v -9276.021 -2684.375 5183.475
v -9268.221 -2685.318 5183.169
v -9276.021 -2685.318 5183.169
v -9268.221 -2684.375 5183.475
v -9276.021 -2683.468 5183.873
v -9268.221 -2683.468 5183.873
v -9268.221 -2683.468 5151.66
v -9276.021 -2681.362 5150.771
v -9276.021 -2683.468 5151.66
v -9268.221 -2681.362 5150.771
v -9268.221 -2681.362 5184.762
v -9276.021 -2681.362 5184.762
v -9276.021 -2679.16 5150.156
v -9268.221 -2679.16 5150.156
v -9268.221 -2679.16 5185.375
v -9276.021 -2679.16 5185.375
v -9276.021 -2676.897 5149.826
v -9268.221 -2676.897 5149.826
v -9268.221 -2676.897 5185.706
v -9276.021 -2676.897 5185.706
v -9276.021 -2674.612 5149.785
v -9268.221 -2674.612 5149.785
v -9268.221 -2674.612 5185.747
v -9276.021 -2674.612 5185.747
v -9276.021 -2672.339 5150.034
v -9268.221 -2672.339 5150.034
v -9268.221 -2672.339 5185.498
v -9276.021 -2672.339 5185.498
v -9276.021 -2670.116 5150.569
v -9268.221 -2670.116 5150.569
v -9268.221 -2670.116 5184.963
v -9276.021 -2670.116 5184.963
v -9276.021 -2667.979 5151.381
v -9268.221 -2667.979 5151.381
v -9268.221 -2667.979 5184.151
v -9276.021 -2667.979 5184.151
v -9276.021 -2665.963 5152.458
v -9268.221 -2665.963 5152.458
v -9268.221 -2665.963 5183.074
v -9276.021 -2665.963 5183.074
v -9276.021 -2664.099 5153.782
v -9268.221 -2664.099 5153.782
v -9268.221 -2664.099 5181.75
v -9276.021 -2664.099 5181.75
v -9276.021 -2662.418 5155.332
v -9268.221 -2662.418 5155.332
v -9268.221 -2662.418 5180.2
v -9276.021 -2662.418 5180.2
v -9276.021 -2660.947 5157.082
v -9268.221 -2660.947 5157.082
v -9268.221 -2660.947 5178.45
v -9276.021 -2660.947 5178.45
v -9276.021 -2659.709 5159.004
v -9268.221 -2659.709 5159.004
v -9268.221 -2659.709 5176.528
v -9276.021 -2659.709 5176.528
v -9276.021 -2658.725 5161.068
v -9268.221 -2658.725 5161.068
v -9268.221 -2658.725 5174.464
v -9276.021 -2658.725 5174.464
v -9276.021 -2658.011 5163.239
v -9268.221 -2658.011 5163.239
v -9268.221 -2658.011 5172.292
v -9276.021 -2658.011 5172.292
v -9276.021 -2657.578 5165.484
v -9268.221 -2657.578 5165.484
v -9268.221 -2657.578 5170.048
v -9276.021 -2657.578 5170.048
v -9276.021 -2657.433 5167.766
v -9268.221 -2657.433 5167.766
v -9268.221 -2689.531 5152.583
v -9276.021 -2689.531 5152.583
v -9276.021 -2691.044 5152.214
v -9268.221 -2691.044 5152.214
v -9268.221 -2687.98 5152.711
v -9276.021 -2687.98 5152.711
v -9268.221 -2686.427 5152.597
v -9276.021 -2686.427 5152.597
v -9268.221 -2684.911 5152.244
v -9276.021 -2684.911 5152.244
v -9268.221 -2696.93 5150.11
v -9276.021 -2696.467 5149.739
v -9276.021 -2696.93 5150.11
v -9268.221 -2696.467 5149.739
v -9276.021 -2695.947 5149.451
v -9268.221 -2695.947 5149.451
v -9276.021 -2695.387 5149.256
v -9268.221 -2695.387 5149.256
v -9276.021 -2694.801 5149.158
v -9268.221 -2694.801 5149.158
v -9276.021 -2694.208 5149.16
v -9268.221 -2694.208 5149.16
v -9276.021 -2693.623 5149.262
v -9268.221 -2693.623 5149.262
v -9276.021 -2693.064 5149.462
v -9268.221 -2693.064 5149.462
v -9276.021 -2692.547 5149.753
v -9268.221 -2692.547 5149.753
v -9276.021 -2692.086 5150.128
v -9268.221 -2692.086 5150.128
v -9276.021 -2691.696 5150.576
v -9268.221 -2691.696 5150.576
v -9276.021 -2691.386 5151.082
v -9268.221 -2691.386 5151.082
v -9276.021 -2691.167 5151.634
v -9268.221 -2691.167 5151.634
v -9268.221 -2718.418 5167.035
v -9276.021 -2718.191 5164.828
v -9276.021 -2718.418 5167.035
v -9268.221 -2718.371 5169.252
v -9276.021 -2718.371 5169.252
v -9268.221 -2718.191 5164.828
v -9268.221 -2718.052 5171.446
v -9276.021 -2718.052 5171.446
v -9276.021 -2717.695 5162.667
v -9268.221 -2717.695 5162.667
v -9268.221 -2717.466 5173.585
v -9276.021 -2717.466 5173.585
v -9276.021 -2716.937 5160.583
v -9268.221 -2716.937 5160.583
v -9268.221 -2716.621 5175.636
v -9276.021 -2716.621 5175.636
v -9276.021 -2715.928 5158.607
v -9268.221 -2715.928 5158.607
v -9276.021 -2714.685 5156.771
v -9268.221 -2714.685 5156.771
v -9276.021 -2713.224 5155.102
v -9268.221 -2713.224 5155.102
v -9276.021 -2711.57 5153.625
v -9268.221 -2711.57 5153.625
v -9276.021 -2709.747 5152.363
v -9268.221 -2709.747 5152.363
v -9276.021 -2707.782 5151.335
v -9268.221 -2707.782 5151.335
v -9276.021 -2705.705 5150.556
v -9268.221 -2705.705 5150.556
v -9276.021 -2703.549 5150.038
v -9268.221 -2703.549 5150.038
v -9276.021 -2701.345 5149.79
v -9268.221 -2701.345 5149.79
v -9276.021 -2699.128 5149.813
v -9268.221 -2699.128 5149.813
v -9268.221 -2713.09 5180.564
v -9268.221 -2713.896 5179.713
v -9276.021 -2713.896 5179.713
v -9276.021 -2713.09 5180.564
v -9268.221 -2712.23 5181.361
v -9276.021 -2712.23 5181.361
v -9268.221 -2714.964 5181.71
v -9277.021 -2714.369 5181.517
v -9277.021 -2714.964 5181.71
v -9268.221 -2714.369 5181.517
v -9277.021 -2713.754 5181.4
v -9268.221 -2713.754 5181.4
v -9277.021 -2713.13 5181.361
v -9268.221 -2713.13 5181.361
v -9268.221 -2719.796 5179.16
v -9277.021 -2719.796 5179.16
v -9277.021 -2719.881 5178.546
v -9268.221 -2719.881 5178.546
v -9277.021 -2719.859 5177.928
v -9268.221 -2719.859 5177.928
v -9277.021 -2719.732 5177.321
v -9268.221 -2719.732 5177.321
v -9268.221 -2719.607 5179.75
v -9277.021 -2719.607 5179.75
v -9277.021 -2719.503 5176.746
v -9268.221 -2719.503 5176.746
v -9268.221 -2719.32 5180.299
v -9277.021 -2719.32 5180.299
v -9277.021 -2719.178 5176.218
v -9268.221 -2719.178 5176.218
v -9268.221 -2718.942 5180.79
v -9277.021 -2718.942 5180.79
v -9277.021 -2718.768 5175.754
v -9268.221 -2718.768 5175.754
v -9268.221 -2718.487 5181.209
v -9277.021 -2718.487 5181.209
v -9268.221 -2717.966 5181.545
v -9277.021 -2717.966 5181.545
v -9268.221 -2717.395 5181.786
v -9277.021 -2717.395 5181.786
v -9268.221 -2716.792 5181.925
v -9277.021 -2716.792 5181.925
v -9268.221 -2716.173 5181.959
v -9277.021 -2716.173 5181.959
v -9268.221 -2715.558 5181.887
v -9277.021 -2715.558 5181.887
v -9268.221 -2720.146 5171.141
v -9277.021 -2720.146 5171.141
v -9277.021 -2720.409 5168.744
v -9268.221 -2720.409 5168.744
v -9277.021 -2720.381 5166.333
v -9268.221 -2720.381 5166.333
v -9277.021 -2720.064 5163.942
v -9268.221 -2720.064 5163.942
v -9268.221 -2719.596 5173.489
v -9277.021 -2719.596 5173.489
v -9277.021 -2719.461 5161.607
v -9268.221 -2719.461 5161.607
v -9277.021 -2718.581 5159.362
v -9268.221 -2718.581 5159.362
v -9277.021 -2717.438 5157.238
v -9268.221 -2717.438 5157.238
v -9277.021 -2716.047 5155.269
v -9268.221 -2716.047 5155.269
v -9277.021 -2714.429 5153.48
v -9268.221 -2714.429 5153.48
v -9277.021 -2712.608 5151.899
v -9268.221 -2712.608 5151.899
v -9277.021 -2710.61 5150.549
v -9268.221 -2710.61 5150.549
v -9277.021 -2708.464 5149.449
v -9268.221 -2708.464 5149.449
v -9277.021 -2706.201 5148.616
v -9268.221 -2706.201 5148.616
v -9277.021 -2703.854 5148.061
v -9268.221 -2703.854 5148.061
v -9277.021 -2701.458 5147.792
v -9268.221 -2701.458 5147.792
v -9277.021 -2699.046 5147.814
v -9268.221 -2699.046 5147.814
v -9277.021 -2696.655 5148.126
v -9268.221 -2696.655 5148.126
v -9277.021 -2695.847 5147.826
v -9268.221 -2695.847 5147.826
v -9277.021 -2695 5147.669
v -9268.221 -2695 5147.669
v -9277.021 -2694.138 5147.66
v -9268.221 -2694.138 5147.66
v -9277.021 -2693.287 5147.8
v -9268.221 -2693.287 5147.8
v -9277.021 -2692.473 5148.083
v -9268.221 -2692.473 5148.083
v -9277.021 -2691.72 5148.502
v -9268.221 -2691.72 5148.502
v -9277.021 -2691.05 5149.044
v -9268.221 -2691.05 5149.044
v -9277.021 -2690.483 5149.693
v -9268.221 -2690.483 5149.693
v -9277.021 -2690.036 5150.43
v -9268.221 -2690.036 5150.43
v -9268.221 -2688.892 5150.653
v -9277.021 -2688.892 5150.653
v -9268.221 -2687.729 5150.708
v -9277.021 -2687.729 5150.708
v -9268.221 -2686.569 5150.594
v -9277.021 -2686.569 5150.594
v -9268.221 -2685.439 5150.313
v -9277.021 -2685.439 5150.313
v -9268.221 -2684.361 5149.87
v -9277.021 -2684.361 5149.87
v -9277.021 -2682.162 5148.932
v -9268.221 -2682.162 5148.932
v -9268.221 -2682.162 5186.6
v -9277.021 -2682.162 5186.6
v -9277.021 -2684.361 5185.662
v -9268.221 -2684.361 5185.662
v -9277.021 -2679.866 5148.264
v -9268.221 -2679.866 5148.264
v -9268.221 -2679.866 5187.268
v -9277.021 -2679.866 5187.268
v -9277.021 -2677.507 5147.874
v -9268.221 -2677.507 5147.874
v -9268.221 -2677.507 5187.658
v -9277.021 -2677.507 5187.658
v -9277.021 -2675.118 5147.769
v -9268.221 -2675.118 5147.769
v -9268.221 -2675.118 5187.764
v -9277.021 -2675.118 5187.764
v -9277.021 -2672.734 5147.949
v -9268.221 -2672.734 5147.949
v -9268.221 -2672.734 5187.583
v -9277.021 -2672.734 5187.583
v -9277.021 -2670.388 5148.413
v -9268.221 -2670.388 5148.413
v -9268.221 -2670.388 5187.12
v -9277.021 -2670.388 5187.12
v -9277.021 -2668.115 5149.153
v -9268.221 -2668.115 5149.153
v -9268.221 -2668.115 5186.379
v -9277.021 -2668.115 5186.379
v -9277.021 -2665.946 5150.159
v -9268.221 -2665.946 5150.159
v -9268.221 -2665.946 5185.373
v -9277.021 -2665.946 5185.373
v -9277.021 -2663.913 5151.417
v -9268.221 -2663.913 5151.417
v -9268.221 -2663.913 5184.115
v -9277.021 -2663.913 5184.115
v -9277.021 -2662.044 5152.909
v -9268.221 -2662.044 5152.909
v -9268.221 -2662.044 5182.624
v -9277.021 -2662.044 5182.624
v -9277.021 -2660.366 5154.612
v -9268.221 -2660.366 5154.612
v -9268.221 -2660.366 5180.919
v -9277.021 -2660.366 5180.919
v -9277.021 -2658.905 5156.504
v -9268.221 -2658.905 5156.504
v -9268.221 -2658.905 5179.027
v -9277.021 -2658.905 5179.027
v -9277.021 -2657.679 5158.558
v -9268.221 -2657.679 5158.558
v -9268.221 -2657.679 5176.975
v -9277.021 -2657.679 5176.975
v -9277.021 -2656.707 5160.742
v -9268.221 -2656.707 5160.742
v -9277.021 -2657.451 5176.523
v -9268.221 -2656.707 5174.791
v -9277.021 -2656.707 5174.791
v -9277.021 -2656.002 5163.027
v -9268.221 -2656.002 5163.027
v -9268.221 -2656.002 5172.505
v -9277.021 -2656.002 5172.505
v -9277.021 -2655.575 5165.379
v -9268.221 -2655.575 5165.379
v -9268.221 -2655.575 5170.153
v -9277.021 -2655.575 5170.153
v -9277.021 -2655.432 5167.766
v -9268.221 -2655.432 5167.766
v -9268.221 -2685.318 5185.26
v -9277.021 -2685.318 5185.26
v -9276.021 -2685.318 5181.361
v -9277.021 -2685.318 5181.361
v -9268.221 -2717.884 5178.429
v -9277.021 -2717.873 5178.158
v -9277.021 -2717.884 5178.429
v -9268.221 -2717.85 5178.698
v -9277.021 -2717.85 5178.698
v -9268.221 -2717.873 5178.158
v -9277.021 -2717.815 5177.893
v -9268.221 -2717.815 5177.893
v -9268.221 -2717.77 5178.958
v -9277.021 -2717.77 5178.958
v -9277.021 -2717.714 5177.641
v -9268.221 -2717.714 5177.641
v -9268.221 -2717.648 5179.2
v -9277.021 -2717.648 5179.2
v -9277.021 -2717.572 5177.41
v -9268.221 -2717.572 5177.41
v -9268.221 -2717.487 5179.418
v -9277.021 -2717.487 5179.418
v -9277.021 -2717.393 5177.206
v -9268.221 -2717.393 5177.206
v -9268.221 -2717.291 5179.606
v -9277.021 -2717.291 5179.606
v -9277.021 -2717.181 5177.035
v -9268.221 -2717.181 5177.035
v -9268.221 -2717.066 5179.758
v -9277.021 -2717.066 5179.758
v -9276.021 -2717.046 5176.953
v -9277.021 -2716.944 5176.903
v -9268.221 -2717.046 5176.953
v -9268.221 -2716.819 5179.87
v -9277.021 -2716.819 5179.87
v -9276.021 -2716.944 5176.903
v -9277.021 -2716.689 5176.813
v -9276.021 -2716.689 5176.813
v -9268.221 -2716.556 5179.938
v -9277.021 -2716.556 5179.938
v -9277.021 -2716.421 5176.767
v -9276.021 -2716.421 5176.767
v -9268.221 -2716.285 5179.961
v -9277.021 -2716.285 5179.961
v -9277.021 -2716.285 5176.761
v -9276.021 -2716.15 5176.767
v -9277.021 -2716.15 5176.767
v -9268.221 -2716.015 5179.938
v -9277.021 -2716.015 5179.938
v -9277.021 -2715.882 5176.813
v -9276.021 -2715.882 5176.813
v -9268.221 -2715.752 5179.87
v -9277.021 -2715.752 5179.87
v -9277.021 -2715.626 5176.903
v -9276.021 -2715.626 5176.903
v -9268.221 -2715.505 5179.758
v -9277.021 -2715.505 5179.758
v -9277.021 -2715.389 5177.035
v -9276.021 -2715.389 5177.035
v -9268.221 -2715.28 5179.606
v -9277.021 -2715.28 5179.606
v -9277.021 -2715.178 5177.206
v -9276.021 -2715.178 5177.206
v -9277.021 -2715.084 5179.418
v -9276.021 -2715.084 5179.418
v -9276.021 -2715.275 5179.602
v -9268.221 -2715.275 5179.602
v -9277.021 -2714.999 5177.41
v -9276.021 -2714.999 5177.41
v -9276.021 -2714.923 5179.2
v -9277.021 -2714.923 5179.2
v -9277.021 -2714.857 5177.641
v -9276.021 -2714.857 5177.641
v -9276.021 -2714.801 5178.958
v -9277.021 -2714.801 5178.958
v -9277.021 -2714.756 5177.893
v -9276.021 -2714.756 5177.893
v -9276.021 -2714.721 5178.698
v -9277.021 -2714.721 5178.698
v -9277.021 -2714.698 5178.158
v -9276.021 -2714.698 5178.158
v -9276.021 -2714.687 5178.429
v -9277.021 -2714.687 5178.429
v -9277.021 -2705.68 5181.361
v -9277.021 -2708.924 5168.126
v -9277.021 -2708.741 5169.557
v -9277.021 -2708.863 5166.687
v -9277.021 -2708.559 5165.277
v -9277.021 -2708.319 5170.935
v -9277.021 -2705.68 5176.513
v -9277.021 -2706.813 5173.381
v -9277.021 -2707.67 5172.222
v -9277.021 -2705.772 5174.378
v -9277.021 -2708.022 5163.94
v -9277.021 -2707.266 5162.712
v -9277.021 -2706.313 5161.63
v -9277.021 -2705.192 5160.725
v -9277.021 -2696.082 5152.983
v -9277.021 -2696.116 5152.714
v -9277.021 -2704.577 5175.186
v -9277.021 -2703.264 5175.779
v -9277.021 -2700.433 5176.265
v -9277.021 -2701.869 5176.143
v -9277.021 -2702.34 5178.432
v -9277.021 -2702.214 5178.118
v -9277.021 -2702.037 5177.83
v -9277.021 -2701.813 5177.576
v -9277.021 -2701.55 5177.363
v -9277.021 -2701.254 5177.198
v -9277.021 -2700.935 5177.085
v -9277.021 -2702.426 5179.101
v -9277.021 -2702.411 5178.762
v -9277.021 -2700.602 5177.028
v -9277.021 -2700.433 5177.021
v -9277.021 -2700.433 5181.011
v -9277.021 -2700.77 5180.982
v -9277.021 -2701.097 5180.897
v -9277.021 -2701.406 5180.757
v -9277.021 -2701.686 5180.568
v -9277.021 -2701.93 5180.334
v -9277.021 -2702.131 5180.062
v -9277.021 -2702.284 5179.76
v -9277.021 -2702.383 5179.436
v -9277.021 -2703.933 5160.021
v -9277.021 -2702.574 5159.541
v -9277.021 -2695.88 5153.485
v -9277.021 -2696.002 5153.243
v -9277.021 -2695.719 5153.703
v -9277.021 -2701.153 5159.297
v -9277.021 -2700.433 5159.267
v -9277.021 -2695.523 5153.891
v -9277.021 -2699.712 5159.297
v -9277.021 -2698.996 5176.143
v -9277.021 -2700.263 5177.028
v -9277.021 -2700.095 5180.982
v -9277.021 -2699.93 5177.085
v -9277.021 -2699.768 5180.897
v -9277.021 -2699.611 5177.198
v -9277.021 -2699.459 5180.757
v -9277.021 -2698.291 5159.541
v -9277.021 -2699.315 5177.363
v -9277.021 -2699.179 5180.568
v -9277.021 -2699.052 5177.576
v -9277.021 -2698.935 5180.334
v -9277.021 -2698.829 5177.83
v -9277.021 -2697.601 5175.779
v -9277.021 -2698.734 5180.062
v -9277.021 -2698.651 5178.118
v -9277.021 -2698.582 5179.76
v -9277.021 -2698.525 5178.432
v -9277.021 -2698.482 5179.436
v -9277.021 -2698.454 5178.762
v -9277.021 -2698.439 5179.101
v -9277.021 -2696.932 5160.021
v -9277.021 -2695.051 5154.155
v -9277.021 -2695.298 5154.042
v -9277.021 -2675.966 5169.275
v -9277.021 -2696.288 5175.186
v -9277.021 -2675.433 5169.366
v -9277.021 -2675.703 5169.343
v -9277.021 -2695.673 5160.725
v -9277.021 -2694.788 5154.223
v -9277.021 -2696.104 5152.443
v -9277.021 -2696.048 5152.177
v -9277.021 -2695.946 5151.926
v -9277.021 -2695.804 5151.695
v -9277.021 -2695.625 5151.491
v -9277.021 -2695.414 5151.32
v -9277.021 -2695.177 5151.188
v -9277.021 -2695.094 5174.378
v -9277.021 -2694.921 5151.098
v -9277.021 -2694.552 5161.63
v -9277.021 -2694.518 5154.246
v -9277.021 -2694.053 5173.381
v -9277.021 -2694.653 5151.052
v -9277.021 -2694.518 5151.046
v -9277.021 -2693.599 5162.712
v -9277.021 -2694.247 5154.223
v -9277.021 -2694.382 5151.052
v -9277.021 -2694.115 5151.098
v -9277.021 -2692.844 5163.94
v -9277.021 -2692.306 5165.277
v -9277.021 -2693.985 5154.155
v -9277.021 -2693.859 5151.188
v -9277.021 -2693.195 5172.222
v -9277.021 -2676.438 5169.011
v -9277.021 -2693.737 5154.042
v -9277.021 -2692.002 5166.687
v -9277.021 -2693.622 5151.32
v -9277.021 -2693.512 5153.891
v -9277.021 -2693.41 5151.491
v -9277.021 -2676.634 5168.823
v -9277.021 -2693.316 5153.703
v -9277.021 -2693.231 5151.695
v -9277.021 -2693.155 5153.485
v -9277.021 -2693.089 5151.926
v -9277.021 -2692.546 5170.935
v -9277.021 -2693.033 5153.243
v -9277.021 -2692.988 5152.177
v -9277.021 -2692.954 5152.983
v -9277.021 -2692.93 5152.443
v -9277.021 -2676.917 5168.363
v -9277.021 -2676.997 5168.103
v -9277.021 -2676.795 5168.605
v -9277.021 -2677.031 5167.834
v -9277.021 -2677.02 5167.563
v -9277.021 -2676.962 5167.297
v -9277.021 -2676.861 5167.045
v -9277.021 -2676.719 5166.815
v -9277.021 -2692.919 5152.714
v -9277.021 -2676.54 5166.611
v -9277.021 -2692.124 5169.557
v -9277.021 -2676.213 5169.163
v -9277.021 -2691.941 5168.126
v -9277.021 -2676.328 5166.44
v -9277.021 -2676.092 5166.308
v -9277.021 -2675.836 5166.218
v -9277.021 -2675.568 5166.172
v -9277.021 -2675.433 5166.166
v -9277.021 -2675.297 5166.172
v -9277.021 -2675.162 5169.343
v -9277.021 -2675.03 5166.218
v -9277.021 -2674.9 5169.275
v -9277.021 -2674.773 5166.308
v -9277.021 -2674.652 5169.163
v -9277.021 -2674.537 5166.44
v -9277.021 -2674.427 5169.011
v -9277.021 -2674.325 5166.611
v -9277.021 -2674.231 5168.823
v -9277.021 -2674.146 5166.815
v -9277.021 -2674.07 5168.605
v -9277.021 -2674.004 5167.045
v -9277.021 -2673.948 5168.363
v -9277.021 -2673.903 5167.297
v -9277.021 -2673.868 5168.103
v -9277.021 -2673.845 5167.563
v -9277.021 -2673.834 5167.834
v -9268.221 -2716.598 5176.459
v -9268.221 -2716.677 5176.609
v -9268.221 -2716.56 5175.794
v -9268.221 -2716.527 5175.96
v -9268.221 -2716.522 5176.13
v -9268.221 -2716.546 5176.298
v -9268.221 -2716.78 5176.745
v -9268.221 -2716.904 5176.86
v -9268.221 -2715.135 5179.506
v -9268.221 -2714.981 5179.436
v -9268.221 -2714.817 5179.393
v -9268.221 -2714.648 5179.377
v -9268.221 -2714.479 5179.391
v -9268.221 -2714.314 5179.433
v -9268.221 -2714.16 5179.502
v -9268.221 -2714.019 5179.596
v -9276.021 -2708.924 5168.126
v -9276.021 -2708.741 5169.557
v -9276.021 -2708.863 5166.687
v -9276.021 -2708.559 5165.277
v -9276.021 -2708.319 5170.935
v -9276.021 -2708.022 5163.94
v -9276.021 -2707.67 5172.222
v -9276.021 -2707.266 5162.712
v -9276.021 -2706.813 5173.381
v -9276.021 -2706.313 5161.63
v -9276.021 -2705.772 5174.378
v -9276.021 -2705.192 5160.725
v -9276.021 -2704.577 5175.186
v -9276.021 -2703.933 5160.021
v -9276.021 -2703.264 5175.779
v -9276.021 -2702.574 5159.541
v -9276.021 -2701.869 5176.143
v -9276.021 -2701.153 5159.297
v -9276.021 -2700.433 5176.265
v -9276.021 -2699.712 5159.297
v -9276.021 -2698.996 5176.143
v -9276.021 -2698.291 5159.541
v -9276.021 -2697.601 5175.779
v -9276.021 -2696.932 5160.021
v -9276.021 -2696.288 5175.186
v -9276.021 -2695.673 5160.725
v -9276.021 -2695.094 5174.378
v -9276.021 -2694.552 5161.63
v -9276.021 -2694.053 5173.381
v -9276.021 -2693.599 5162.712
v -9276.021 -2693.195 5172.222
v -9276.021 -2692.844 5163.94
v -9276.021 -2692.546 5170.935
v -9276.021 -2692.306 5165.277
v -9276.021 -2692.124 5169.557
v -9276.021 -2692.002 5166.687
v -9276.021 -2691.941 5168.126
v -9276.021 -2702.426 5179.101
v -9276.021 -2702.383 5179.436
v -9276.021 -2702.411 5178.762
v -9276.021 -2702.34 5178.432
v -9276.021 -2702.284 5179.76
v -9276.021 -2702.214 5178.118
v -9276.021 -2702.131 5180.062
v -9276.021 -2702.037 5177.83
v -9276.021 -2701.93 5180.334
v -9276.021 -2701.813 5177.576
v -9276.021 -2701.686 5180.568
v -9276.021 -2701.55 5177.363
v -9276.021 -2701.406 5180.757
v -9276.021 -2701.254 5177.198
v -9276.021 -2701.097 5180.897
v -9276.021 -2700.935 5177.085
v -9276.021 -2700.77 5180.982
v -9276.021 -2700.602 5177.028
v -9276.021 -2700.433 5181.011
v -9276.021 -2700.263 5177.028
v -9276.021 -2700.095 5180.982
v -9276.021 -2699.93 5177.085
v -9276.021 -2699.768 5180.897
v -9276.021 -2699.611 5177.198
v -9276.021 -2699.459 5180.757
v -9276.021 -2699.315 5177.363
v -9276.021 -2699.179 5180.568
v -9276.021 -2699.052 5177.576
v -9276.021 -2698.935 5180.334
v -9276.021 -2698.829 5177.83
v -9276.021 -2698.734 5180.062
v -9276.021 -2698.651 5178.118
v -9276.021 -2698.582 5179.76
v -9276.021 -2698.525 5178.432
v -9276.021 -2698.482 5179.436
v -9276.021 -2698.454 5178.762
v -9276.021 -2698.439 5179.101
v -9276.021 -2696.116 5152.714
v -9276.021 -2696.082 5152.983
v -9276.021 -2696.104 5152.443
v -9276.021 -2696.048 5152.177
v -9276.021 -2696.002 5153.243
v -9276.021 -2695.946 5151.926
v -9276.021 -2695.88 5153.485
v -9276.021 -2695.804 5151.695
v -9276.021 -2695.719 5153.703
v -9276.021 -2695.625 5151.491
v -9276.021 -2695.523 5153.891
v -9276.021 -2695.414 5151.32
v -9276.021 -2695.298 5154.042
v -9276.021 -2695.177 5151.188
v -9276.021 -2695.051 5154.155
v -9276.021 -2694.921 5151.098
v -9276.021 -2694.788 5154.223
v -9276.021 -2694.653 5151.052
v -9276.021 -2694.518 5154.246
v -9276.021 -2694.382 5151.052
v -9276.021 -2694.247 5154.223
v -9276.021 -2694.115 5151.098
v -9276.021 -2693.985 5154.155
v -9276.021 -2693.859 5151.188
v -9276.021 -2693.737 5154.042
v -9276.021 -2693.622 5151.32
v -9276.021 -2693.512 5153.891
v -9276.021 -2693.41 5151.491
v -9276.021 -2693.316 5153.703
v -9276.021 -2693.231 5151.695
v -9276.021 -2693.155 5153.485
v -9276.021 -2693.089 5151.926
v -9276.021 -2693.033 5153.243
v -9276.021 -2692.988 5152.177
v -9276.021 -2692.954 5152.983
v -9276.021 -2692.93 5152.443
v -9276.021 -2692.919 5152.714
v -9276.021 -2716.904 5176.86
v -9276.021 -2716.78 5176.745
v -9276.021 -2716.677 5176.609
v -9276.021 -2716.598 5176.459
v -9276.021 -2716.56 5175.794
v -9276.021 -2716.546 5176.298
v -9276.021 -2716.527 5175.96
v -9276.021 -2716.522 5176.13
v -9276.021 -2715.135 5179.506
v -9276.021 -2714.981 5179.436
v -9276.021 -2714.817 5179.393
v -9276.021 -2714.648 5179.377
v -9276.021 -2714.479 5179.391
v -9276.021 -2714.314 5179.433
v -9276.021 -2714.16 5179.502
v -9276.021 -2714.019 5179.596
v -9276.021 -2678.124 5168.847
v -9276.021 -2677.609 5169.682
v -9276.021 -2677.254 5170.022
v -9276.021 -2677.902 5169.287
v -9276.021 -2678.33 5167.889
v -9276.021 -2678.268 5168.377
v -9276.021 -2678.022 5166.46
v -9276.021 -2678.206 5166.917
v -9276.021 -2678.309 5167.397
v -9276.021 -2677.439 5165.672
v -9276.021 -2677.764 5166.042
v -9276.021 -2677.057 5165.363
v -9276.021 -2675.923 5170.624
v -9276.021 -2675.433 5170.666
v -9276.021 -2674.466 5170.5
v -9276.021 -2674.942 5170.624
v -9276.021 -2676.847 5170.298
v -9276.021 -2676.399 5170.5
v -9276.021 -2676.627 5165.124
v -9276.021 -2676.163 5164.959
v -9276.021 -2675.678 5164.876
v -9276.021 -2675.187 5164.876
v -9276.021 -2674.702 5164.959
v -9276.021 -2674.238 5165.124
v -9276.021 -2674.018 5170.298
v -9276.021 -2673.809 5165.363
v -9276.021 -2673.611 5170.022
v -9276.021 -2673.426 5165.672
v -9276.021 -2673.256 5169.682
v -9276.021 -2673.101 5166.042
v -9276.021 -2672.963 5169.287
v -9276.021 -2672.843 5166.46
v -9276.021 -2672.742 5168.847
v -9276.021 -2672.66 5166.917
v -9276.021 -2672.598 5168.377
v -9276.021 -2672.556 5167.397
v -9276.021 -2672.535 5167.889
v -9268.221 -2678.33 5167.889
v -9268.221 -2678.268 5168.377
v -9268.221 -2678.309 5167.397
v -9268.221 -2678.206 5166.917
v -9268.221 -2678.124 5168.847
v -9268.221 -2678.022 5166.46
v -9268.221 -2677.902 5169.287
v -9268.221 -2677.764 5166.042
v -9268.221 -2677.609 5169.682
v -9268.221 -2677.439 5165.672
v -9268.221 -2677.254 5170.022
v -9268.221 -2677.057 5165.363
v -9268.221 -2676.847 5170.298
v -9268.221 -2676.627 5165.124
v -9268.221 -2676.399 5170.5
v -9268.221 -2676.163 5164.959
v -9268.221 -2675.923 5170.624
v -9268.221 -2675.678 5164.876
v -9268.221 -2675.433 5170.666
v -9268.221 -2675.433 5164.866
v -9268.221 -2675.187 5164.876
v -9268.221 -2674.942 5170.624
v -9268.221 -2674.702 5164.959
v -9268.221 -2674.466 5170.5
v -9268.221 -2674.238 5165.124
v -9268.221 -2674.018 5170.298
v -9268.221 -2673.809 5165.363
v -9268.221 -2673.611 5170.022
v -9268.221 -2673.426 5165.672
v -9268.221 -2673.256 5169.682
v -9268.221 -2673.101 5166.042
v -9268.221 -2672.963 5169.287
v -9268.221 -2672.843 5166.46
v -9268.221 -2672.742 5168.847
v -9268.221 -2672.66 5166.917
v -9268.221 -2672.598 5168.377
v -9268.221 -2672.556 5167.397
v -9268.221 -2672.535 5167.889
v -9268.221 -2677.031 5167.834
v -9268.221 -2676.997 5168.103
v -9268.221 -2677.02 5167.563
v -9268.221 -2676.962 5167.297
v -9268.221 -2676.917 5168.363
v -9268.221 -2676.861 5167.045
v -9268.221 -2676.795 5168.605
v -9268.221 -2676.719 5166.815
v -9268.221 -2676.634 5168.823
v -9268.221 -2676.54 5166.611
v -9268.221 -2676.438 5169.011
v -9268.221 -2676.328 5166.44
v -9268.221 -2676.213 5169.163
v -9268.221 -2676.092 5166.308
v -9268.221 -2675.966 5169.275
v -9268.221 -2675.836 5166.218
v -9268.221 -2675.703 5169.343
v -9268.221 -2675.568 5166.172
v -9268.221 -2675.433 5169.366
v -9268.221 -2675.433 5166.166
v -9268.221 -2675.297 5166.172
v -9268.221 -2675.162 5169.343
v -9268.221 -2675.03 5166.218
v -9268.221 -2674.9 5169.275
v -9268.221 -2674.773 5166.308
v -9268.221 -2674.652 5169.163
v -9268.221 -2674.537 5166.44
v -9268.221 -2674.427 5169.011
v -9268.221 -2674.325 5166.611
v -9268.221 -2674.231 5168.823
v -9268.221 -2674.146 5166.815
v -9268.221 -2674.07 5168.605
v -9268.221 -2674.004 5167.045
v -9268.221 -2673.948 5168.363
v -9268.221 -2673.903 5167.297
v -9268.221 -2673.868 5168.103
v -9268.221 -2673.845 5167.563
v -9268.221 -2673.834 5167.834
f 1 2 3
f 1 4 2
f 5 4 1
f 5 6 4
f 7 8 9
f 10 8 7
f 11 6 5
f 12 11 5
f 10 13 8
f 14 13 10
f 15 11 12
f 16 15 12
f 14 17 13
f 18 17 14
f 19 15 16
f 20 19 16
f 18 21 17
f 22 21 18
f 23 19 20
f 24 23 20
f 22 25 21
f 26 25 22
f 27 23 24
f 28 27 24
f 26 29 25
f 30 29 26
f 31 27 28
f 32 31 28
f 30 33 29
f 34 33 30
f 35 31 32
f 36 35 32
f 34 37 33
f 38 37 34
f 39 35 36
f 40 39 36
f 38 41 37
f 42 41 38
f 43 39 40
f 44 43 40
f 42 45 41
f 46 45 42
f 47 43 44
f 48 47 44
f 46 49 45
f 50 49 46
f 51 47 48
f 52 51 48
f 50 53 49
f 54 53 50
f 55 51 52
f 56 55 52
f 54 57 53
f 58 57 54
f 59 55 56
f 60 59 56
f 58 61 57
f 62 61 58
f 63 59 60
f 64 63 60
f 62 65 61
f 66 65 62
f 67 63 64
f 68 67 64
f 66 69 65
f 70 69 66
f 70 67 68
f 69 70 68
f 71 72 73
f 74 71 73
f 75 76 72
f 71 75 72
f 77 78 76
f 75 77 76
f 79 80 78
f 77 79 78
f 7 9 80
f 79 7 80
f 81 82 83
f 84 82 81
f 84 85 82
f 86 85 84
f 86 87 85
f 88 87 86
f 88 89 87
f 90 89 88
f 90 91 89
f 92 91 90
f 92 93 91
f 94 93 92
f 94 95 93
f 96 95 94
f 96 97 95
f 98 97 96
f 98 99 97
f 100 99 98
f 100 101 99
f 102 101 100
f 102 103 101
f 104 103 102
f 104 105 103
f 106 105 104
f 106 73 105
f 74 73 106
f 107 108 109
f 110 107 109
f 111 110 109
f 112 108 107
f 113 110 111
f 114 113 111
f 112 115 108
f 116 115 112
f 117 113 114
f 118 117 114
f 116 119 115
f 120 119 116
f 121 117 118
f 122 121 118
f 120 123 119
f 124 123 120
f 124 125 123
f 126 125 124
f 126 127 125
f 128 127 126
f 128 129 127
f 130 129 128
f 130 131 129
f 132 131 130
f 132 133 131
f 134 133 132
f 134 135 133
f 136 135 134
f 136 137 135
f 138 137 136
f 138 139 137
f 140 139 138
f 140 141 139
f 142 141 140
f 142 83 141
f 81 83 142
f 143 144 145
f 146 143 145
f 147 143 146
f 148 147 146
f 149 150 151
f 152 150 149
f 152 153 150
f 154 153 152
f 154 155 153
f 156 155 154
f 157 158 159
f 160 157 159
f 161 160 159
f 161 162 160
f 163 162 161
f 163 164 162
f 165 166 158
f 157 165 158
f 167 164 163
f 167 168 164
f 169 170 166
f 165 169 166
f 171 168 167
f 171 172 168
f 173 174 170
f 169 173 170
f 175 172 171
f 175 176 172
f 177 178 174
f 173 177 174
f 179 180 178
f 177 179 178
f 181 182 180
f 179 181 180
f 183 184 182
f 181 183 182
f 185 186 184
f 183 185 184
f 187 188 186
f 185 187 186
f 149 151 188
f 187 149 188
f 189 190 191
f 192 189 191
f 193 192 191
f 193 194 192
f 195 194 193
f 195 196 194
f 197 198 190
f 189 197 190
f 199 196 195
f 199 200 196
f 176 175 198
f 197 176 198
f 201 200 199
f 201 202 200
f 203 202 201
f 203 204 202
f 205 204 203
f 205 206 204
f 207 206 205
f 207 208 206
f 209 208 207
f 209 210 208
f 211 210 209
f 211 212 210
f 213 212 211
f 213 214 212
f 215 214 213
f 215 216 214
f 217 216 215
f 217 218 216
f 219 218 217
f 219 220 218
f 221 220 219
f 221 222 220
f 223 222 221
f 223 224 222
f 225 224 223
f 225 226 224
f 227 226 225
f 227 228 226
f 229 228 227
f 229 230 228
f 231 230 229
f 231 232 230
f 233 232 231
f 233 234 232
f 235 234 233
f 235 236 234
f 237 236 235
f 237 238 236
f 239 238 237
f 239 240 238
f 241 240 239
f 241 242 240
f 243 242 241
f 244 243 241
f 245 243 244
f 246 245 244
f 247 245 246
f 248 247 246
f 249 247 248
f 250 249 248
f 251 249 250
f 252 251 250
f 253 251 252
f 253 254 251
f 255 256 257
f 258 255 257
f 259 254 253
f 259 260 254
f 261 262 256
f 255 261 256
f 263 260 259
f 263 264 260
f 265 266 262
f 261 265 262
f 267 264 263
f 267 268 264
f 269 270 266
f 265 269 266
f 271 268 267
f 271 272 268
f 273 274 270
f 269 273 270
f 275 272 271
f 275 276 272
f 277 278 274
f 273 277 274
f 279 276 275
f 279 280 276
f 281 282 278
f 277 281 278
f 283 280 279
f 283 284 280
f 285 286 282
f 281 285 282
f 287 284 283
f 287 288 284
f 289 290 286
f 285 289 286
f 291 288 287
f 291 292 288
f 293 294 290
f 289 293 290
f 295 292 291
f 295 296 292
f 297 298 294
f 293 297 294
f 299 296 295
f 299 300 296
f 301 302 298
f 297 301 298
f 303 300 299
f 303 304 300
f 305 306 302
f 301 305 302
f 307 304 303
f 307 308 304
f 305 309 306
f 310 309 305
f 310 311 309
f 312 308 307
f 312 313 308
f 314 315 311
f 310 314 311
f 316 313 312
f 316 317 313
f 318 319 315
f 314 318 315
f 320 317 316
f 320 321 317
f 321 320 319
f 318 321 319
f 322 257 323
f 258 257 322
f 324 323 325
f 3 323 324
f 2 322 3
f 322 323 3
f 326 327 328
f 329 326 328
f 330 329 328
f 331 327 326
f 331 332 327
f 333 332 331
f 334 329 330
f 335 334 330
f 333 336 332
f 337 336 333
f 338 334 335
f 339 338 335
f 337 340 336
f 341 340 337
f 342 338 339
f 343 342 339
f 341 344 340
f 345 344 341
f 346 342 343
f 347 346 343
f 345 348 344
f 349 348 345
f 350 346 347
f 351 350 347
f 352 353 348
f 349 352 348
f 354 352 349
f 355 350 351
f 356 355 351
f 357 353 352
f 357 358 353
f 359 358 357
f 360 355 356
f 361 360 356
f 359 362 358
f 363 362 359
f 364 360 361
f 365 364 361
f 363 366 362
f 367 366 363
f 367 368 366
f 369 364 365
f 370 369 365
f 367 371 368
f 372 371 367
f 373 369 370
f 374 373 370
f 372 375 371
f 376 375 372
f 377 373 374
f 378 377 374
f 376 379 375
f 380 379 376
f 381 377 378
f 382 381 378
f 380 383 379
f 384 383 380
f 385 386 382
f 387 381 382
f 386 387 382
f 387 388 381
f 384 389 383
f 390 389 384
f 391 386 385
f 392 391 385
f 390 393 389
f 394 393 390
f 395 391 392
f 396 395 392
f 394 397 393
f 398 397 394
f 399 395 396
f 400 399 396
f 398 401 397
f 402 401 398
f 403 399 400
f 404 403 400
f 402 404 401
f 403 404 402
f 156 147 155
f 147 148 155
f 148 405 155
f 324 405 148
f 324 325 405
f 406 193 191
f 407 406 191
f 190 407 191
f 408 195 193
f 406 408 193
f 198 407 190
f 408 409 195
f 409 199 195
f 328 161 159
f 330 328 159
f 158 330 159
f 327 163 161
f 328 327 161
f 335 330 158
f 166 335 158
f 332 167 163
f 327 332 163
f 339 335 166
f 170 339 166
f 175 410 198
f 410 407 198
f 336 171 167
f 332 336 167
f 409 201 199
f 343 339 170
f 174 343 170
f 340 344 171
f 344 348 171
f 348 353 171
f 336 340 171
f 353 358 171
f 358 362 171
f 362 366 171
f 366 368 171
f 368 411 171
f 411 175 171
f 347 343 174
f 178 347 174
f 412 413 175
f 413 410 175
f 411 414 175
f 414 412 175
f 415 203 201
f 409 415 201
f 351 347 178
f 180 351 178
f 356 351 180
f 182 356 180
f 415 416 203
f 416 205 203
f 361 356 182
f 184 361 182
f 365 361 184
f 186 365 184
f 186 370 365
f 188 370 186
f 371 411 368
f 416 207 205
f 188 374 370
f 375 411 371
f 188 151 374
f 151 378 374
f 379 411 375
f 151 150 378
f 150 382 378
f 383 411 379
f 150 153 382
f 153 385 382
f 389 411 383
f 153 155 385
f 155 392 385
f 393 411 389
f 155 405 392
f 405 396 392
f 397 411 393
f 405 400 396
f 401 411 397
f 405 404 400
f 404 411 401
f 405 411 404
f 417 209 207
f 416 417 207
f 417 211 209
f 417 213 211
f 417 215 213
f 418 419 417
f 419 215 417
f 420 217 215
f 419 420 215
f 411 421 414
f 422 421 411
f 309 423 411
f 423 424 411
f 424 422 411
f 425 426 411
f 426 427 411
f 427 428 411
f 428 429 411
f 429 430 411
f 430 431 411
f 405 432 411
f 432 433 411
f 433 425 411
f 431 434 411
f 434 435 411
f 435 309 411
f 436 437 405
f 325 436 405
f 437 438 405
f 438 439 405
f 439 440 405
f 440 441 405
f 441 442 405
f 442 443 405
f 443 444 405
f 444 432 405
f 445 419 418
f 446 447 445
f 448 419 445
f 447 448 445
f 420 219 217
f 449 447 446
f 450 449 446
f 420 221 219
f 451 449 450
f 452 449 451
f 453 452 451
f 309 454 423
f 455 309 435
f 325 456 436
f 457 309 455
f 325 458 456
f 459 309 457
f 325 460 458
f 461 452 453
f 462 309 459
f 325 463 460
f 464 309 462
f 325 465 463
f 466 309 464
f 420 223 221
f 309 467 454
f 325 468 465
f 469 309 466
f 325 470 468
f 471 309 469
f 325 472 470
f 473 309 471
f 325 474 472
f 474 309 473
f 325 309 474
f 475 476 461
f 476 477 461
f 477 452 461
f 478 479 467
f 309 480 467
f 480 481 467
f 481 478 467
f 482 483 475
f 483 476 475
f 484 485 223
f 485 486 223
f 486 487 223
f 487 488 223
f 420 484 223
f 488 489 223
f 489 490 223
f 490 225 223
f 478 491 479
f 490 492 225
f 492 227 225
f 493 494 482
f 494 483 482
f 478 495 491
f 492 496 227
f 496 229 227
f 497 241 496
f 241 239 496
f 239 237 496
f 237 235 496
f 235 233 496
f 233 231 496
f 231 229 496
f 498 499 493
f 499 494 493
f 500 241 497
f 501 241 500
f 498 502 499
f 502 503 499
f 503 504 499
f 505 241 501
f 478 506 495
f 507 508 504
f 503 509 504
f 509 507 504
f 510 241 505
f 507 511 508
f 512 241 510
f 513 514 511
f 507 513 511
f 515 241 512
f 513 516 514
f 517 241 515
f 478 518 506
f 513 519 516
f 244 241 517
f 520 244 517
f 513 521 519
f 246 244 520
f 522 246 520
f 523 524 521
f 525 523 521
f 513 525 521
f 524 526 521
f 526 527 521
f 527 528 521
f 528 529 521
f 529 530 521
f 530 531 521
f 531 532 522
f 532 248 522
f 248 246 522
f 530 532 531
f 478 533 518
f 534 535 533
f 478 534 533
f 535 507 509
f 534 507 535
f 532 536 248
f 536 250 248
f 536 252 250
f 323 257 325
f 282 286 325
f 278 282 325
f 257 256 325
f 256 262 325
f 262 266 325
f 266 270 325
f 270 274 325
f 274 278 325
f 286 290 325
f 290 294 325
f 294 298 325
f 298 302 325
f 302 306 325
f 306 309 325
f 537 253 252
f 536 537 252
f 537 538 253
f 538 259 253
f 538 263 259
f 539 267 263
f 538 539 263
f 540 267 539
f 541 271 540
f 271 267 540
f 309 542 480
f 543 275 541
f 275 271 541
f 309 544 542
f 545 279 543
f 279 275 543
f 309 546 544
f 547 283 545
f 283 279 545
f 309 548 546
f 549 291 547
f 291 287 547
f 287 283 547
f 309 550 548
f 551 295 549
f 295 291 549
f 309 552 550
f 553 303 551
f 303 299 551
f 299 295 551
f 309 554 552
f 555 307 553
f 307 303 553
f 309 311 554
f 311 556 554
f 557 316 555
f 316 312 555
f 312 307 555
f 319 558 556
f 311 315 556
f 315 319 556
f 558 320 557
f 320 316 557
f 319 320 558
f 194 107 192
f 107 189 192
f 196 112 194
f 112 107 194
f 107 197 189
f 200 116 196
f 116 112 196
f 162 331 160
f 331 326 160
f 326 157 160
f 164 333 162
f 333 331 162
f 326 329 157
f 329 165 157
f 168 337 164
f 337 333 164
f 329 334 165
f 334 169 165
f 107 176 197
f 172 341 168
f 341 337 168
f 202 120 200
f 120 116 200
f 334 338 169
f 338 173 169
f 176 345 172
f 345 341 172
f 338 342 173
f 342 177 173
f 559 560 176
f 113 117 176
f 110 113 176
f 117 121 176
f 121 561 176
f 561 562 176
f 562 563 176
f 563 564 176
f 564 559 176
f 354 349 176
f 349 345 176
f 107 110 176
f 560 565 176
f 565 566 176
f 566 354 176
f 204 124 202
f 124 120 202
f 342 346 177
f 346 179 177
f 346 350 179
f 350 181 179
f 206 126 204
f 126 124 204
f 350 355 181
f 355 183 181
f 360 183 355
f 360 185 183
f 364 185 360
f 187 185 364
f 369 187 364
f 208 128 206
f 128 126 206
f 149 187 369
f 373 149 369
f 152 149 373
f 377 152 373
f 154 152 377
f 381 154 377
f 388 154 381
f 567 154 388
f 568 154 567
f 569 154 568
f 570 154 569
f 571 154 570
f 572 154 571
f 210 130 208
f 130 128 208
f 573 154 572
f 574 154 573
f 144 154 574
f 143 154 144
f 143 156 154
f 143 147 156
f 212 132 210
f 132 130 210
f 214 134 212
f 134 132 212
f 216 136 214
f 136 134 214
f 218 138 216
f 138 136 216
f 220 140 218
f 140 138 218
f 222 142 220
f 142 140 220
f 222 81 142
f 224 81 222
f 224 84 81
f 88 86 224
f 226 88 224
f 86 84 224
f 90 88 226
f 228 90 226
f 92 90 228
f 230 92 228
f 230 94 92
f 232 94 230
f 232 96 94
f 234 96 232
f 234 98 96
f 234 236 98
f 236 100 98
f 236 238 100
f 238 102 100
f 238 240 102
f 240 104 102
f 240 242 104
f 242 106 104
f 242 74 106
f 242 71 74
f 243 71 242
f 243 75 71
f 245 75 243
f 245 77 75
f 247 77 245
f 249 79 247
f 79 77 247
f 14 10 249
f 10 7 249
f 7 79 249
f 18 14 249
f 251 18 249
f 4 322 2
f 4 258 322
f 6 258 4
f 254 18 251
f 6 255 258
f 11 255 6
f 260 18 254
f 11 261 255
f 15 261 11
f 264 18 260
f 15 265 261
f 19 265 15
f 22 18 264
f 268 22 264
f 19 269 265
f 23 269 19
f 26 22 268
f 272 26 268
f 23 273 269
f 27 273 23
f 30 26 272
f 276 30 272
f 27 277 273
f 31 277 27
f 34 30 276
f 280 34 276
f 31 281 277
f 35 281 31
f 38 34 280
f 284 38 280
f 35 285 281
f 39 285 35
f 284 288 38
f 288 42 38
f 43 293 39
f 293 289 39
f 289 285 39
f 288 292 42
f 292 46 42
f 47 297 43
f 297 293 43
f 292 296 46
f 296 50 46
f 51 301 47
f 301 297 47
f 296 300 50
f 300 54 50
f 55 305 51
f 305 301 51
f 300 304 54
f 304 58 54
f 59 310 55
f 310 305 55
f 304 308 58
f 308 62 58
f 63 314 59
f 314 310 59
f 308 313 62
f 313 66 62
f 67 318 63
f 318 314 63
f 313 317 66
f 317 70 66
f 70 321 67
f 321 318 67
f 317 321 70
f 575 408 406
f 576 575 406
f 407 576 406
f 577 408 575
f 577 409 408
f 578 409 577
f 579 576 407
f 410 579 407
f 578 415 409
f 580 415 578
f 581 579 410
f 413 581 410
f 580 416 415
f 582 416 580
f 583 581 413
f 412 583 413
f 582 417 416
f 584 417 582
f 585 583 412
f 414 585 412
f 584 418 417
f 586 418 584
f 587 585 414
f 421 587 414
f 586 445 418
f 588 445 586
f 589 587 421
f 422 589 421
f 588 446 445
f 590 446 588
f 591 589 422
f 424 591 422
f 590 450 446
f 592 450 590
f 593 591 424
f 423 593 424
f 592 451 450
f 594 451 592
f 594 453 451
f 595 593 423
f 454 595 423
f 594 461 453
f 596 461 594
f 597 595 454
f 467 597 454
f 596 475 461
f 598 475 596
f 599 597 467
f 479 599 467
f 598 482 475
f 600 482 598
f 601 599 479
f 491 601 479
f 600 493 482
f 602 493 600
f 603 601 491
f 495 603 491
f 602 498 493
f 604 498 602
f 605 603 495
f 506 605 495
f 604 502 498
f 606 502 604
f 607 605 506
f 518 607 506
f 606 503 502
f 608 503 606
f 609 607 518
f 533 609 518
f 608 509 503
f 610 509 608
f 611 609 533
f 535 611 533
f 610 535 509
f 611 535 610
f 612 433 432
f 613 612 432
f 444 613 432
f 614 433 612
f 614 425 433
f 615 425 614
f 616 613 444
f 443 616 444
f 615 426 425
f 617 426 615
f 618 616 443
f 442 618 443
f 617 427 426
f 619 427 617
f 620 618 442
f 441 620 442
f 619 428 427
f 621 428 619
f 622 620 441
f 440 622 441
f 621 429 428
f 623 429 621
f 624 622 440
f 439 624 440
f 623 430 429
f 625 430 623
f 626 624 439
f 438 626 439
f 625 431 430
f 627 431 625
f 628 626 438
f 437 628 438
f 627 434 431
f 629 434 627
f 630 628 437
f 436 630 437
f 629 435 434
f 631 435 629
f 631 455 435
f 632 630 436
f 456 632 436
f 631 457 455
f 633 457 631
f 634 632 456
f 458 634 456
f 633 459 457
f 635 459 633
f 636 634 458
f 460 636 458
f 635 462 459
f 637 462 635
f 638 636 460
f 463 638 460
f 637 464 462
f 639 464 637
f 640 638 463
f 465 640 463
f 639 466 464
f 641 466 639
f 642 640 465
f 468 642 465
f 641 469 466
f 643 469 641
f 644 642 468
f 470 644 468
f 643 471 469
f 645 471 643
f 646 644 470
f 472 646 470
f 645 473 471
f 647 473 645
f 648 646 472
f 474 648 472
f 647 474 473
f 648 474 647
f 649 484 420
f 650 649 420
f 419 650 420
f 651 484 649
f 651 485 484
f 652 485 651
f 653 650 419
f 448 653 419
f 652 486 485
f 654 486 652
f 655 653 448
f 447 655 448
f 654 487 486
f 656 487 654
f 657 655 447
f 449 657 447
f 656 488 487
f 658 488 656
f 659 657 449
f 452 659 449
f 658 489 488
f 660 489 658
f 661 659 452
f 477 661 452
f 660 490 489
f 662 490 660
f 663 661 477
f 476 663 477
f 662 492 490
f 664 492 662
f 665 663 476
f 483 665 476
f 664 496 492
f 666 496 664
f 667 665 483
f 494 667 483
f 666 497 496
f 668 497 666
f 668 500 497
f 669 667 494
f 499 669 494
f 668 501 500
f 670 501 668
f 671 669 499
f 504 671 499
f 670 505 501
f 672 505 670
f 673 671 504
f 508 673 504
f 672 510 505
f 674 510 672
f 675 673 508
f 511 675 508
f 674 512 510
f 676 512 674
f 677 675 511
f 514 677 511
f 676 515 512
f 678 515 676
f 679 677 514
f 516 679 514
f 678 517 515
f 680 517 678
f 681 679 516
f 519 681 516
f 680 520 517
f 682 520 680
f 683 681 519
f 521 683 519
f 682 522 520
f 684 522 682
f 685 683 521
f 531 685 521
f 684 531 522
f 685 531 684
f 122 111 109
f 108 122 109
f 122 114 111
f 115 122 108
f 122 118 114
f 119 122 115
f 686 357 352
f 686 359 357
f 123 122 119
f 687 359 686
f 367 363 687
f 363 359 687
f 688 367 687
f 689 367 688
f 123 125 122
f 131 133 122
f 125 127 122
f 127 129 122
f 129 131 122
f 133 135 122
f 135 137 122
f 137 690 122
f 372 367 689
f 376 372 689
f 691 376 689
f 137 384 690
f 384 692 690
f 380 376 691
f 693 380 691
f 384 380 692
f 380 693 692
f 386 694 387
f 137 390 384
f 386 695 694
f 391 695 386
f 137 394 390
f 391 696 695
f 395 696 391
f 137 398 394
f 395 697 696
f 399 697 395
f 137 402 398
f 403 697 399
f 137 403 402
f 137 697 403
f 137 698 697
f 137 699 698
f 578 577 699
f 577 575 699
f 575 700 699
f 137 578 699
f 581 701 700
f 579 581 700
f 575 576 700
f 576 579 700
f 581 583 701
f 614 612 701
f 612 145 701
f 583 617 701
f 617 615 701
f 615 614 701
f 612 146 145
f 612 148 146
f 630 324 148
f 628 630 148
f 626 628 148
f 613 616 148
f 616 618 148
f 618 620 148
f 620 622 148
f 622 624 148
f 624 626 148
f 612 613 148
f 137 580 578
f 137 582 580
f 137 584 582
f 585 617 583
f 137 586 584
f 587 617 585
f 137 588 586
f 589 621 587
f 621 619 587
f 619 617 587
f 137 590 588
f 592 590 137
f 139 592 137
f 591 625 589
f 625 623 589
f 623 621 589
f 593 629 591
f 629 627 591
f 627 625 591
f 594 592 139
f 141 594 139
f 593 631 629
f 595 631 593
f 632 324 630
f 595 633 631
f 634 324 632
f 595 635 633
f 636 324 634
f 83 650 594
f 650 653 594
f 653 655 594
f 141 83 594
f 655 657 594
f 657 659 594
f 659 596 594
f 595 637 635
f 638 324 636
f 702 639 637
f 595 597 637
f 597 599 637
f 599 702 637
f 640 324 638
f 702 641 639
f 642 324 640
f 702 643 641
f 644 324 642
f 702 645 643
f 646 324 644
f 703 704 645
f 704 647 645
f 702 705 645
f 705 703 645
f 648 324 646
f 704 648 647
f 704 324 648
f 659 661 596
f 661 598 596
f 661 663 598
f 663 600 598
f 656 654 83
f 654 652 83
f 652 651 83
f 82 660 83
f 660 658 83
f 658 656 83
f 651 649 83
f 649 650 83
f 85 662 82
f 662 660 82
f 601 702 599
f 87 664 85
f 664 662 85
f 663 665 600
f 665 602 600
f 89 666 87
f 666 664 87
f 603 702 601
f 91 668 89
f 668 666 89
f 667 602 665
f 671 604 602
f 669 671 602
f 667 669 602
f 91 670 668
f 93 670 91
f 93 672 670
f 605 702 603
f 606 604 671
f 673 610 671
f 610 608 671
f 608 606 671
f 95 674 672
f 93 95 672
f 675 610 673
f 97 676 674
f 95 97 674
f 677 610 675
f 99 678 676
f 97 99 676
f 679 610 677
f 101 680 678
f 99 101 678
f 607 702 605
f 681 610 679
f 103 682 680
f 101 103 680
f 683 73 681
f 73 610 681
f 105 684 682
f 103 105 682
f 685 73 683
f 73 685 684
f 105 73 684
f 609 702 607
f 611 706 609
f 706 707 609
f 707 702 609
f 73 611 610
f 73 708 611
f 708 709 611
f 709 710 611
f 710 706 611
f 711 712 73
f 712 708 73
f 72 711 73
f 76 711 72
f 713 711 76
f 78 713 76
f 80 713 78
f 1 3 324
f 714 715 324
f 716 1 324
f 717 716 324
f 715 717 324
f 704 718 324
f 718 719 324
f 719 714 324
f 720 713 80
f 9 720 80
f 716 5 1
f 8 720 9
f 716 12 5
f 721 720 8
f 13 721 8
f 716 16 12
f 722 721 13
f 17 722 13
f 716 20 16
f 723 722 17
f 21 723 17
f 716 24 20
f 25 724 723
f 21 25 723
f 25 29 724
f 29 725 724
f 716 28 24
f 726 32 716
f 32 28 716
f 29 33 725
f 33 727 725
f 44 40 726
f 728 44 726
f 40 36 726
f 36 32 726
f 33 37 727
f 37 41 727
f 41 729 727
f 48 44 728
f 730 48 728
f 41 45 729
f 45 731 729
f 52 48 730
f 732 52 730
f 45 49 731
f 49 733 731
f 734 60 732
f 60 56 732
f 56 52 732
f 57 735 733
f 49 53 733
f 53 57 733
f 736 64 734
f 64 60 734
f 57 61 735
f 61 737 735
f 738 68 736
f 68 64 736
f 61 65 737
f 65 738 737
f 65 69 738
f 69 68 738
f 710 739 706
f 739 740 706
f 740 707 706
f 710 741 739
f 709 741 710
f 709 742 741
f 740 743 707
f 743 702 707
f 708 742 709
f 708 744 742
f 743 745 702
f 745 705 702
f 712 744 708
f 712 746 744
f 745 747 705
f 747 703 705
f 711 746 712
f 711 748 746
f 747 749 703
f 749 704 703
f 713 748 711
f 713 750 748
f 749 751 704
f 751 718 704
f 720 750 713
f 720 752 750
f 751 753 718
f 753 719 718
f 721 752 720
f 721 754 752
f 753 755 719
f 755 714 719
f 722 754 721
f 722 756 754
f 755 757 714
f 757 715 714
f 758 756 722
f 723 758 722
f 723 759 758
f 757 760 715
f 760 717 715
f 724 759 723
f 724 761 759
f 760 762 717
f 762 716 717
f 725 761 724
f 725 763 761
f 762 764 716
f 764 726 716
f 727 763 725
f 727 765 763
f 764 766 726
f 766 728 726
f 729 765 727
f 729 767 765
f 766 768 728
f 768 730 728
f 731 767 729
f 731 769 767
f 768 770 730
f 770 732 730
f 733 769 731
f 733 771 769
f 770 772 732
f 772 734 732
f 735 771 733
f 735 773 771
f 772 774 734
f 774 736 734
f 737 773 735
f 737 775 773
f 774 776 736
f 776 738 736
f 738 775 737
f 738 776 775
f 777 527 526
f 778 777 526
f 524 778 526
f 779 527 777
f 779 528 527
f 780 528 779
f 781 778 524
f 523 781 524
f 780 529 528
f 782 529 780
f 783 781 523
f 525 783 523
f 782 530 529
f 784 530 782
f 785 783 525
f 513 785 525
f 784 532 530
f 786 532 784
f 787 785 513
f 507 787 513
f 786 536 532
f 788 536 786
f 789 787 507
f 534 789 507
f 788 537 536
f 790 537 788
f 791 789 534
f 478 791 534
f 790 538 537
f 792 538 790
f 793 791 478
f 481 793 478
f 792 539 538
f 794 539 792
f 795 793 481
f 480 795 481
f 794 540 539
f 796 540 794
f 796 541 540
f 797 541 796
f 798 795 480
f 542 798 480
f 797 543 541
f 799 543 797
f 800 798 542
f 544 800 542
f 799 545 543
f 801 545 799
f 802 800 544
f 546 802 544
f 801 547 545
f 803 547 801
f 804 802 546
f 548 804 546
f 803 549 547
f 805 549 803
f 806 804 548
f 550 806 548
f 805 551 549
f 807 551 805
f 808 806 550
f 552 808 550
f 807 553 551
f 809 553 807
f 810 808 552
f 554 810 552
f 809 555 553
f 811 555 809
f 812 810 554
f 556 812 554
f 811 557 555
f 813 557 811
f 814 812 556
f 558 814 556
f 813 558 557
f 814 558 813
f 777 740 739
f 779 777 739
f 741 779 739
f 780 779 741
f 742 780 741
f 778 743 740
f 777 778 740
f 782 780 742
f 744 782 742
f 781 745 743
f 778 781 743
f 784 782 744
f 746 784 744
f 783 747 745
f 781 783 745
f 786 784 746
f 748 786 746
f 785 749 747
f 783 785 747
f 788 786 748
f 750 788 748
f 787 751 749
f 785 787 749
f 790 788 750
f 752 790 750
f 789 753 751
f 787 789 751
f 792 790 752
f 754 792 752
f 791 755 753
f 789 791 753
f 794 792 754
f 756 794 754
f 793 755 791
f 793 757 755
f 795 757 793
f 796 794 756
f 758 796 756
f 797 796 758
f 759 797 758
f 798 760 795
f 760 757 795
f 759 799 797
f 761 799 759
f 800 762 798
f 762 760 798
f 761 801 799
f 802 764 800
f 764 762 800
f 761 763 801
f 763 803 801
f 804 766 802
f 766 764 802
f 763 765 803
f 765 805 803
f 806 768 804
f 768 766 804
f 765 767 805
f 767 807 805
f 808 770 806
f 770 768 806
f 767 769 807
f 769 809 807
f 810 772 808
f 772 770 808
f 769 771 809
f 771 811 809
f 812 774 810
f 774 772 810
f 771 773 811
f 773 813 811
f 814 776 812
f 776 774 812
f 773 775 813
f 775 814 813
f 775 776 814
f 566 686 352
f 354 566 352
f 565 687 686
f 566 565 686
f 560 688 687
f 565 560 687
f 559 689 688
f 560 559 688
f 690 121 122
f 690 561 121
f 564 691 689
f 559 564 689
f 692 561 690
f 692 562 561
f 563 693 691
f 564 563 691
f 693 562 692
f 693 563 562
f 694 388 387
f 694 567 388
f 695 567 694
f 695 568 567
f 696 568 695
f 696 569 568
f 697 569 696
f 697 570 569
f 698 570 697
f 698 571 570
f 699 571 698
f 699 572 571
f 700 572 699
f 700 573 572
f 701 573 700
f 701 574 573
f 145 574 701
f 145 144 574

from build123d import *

# Parameters (mm, degrees)
BOSS_EXTRUDE1_DEPTH = 8.8
SKETCH1_3_R         = 1.9950000000003372
SKETCH1_3_R_2       = 8.499000000001052
SKETCH1_3_R_3       = 1.5999999999998604
SKETCH1_3_R_4       = 2.9000000000004036
BOSS_EXTRUDE2_DEPTH = 1
SKETCH1_4_R         = 2.9000000000004036
SKETCH1_4_R_2       = 1.5999999999998604
BOSS_EXTRUDE3_DEPTH = 8.8
FILLET1_R           = 1


with BuildPart() as part:
    # Sketch1 → Boss-Extrude1 (new body)
    with BuildSketch(Plane(origin=(-9277.020495484805, 0, 0), x_dir=(0, 0, -1), z_dir=(1, 0, 0))):
        with BuildLine():
            Line((-5181.361026538003, -2712.2298566105233), (-5181.361026538003, -2713.1295442369124))
            ThreePointArc((-5181.361026538003, -2713.1295442369124), (-5181.449009948379, -2714.0634034464592), (-5181.7098637473055, -2714.9643970087795))
            ThreePointArc((-5181.7098637473055, -2714.9643970087795), (-5180.298716040606, -2719.319524523044), (-5175.754002429446, -2718.7681156836497))
            ThreePointArc((-5175.754002429446, -2718.7681156836493), (-5155.268489112517, -2716.0470361610683), (-5148.125988175469, -2696.6551510028244))
            ThreePointArc((-5148.125988175468, -2696.6551510028244), (-5147.923825496746, -2692.8741534881237), (-5150.429715151682, -2690.0356100249855))
            ThreePointArc((-5150.429715151682, -2690.0356100249855), (-5150.672402006578, -2687.1467824336814), (-5149.869641086049, -2684.3611412747578))
            ThreePointArc((-5149.869641086049, -2684.3611412747578), (-5167.766026538003, -2655.432569846187), (-5185.662411989956, -2684.361141274758))
            ThreePointArc((-5185.662411989956, -2684.361141274758), (-5185.445898231984, -2684.832832292979), (-5185.260425515467, -2685.3175698461864))
            Line((-5185.2604255154665, -2685.3175698461864), (-5183.1689314111645, -2685.3175698461864))
            ThreePointArc((-5183.1689314111645, -2685.3175698461864), (-5183.475000193814, -2684.375475532257), (-5183.87277344476, -2683.4682841319004))
            ThreePointArc((-5183.872773444761, -2683.468284131901), (-5167.766026538003, -2657.432569846187), (-5151.659279631244, -2683.4682841319004))
            ThreePointArc((-5151.659279631244, -2683.4682841319004), (-5152.684326847257, -2687.2014849950892), (-5152.214633681771, -2691.0442572769534))
            ThreePointArc((-5152.214633681771, -2691.044257276954), (-5149.350375503743, -2693.339145363929), (-5150.110119114768, -2696.929866167285))
            ThreePointArc((-5150.110119114768, -2696.929866167285), (-5157.293990334202, -2715.0728040569593), (-5176.7849023498975, -2716.0101139109493))
            ThreePointArc((-5176.7849023498975, -2716.0101139109493), (-5179.250079105888, -2717.6157486981815), (-5178.709438757866, -2714.723886405067))
            ThreePointArc((-5178.709438757866, -2714.723886405067), (-5180.098441740306, -2713.544073775103), (-5181.361026538003, -2712.2298566105233))
        make_face()
    extrude(amount=BOSS_EXTRUDE1_DEPTH)

    # Sketch1<3> → Boss-Extrude2 (add)
    with BuildSketch(Plane(origin=(-9277.020495484805, 0, 0), x_dir=(0, 0, -1), z_dir=(1, 0, 0))):
        with BuildLine():
            Line((-5181.361026538003, -2685.3175698461864), (-5181.361026538003, -2712.2298566105233))
            ThreePointArc((-5181.361026538003, -2712.2298566105233), (-5180.098441740306, -2713.544073775103), (-5178.709438757866, -2714.723886405067))
            ThreePointArc((-5178.709438757866, -2714.723886405067), (-5177.471973970118, -2714.9552333108672), (-5176.7849023498975, -2716.0101139109493))
            ThreePointArc((-5176.7849023498975, -2716.0101139109493), (-5175.822472884072, -2716.5289567784425), (-5174.830317408971, -2716.98840852897))
            ThreePointArc((-5174.830317408971, -2716.98840852897), (-5156.424427633244, -2714.409984996477), (-5150.110119114768, -2696.929866167285))
            ThreePointArc((-5150.110119114768, -2696.929866167285), (-5149.350375503743, -2693.339145363929), (-5152.214633681771, -2691.044257276954))
            ThreePointArc((-5152.214633681771, -2691.0442572769534), (-5152.429634860403, -2690.2883766387154), (-5152.584616128909, -2689.5179469842446))
            ThreePointArc((-5152.584616128909, -2689.5179469842446), (-5152.596121525538, -2686.4205875195544), (-5151.659279631244, -2683.4682841319004))
            ThreePointArc((-5151.659279631244, -2683.4682841319004), (-5167.766026538003, -2657.432569846187), (-5183.872773444761, -2683.468284131901))
            ThreePointArc((-5183.87277344476, -2683.4682841319004), (-5183.475000193814, -2684.375475532257), (-5183.1689314111645, -2685.3175698461864))
            Line((-5183.1689314111645, -2685.3175698461864), (-5181.361026538003, -2685.3175698461864))
        make_face()
        with Locations(Location((-5179.016026538003, -2700.4325698461867, 0), (0, 0, 180))):
            Circle(SKETCH1_3_R, mode=Mode.SUBTRACT)
        with Locations(Location((-5167.766026538003, -2700.432569846186, 0), (0, 0, 180))):
            Circle(SKETCH1_3_R_2, mode=Mode.SUBTRACT)
        with Locations(Location((-5152.646026538003, -2694.5175698461867, 0), (0, 0, 180))):
            Circle(SKETCH1_3_R_3, mode=Mode.SUBTRACT)
        with Locations(Location((-5167.766026538003, -2675.4325698461867, 0), (0, 0, 180))):
            Circle(SKETCH1_3_R_4, mode=Mode.SUBTRACT)
    extrude(amount=BOSS_EXTRUDE2_DEPTH)

    # Sketch1<4> → Boss-Extrude3 (add)
    with BuildSketch(Plane(origin=(-9277.020495484805, 0, 0), x_dir=(0, 0, -1), z_dir=(1, 0, 0))):
        with Locations(Location((-5167.766026538003, -2675.4325698461867, 0), (0, 0, 180))):
            Circle(SKETCH1_4_R)
        with Locations((-5167.766026538003, -2675.4325698461867)):
            Circle(SKETCH1_4_R_2, mode=Mode.SUBTRACT)
    extrude(amount=BOSS_EXTRUDE3_DEPTH)

    # Fillet1
    fillet1_edges = [part.edges().sort_by_distance(p)[0] for p in [
        (-9272.120495484805, -2716.0101139109493, 5176.7849023498975),
        (-9272.120495484805, -2714.723886405067, 5178.709438757866),
    ]]
    fillet(fillet1_edges, radius=FILLET1_R)


solid = part.part
